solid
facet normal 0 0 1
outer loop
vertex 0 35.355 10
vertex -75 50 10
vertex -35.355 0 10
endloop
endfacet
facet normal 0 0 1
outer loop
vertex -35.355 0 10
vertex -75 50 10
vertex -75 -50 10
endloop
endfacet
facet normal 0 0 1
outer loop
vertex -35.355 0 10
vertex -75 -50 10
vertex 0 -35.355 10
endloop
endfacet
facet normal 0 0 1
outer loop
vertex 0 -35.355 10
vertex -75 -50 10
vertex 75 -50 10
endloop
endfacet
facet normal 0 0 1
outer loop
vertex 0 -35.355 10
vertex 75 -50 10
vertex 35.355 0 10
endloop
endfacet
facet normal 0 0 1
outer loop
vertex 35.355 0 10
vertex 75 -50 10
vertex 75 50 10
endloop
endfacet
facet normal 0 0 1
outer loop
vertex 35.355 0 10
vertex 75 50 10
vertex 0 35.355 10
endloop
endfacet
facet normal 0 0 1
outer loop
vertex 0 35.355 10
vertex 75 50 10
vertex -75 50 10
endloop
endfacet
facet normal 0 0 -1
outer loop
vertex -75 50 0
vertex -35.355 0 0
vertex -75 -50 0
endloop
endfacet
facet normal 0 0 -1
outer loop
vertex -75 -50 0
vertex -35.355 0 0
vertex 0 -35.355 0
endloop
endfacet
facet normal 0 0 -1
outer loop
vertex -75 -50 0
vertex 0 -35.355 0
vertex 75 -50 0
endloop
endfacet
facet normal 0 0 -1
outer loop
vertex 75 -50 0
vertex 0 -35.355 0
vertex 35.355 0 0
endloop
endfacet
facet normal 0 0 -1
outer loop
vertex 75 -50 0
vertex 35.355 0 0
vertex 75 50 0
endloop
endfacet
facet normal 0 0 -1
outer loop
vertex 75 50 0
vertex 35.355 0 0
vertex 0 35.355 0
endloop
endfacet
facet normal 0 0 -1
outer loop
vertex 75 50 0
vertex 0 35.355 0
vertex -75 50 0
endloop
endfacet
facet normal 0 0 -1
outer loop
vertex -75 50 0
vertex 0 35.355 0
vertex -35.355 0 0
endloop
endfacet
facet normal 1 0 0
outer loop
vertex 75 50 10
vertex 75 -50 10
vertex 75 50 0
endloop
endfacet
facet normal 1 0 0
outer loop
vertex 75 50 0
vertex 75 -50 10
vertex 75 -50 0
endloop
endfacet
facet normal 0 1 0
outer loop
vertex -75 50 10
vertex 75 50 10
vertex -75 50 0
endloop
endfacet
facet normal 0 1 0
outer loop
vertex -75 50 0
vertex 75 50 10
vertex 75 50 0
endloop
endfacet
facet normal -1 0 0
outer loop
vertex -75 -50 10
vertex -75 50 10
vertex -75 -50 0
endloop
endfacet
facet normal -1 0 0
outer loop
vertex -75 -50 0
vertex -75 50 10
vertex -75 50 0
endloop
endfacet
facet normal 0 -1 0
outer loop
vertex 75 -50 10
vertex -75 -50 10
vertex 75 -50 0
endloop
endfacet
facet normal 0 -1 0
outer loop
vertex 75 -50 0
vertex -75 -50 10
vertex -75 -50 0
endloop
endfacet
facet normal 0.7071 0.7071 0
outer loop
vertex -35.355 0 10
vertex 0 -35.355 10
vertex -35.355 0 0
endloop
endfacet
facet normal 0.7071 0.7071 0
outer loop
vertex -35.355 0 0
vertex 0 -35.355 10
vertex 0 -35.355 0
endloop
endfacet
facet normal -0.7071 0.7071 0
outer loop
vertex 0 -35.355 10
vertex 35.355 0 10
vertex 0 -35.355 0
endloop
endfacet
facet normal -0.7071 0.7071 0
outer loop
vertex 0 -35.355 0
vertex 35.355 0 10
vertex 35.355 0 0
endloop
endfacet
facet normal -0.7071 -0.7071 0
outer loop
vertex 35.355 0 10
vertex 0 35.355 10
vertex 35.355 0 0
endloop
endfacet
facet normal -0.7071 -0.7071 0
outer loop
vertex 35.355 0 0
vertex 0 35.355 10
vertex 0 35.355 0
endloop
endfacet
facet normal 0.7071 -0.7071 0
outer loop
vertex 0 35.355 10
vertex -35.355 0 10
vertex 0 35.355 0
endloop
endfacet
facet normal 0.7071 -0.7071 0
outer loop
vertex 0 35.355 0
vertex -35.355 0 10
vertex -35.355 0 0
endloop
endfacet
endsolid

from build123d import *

# Parameters (mm, degrees)
SKETCH2_W           = 150
SKETCH2_H           = 100
BOSS_EXTRUDE1_DEPTH = 10


with BuildPart() as part:
    # Sketch2 → Boss-Extrude1 (new body)
    with BuildSketch(Plane.XY):
        Rectangle(SKETCH2_W, SKETCH2_H)
        Polygon((0, -35.355339059), (35.355339059, 0), (0, 35.355339059), (-35.355339059, 0), align=None, mode=Mode.SUBTRACT)
    extrude(amount=BOSS_EXTRUDE1_DEPTH)


solid = part.part
